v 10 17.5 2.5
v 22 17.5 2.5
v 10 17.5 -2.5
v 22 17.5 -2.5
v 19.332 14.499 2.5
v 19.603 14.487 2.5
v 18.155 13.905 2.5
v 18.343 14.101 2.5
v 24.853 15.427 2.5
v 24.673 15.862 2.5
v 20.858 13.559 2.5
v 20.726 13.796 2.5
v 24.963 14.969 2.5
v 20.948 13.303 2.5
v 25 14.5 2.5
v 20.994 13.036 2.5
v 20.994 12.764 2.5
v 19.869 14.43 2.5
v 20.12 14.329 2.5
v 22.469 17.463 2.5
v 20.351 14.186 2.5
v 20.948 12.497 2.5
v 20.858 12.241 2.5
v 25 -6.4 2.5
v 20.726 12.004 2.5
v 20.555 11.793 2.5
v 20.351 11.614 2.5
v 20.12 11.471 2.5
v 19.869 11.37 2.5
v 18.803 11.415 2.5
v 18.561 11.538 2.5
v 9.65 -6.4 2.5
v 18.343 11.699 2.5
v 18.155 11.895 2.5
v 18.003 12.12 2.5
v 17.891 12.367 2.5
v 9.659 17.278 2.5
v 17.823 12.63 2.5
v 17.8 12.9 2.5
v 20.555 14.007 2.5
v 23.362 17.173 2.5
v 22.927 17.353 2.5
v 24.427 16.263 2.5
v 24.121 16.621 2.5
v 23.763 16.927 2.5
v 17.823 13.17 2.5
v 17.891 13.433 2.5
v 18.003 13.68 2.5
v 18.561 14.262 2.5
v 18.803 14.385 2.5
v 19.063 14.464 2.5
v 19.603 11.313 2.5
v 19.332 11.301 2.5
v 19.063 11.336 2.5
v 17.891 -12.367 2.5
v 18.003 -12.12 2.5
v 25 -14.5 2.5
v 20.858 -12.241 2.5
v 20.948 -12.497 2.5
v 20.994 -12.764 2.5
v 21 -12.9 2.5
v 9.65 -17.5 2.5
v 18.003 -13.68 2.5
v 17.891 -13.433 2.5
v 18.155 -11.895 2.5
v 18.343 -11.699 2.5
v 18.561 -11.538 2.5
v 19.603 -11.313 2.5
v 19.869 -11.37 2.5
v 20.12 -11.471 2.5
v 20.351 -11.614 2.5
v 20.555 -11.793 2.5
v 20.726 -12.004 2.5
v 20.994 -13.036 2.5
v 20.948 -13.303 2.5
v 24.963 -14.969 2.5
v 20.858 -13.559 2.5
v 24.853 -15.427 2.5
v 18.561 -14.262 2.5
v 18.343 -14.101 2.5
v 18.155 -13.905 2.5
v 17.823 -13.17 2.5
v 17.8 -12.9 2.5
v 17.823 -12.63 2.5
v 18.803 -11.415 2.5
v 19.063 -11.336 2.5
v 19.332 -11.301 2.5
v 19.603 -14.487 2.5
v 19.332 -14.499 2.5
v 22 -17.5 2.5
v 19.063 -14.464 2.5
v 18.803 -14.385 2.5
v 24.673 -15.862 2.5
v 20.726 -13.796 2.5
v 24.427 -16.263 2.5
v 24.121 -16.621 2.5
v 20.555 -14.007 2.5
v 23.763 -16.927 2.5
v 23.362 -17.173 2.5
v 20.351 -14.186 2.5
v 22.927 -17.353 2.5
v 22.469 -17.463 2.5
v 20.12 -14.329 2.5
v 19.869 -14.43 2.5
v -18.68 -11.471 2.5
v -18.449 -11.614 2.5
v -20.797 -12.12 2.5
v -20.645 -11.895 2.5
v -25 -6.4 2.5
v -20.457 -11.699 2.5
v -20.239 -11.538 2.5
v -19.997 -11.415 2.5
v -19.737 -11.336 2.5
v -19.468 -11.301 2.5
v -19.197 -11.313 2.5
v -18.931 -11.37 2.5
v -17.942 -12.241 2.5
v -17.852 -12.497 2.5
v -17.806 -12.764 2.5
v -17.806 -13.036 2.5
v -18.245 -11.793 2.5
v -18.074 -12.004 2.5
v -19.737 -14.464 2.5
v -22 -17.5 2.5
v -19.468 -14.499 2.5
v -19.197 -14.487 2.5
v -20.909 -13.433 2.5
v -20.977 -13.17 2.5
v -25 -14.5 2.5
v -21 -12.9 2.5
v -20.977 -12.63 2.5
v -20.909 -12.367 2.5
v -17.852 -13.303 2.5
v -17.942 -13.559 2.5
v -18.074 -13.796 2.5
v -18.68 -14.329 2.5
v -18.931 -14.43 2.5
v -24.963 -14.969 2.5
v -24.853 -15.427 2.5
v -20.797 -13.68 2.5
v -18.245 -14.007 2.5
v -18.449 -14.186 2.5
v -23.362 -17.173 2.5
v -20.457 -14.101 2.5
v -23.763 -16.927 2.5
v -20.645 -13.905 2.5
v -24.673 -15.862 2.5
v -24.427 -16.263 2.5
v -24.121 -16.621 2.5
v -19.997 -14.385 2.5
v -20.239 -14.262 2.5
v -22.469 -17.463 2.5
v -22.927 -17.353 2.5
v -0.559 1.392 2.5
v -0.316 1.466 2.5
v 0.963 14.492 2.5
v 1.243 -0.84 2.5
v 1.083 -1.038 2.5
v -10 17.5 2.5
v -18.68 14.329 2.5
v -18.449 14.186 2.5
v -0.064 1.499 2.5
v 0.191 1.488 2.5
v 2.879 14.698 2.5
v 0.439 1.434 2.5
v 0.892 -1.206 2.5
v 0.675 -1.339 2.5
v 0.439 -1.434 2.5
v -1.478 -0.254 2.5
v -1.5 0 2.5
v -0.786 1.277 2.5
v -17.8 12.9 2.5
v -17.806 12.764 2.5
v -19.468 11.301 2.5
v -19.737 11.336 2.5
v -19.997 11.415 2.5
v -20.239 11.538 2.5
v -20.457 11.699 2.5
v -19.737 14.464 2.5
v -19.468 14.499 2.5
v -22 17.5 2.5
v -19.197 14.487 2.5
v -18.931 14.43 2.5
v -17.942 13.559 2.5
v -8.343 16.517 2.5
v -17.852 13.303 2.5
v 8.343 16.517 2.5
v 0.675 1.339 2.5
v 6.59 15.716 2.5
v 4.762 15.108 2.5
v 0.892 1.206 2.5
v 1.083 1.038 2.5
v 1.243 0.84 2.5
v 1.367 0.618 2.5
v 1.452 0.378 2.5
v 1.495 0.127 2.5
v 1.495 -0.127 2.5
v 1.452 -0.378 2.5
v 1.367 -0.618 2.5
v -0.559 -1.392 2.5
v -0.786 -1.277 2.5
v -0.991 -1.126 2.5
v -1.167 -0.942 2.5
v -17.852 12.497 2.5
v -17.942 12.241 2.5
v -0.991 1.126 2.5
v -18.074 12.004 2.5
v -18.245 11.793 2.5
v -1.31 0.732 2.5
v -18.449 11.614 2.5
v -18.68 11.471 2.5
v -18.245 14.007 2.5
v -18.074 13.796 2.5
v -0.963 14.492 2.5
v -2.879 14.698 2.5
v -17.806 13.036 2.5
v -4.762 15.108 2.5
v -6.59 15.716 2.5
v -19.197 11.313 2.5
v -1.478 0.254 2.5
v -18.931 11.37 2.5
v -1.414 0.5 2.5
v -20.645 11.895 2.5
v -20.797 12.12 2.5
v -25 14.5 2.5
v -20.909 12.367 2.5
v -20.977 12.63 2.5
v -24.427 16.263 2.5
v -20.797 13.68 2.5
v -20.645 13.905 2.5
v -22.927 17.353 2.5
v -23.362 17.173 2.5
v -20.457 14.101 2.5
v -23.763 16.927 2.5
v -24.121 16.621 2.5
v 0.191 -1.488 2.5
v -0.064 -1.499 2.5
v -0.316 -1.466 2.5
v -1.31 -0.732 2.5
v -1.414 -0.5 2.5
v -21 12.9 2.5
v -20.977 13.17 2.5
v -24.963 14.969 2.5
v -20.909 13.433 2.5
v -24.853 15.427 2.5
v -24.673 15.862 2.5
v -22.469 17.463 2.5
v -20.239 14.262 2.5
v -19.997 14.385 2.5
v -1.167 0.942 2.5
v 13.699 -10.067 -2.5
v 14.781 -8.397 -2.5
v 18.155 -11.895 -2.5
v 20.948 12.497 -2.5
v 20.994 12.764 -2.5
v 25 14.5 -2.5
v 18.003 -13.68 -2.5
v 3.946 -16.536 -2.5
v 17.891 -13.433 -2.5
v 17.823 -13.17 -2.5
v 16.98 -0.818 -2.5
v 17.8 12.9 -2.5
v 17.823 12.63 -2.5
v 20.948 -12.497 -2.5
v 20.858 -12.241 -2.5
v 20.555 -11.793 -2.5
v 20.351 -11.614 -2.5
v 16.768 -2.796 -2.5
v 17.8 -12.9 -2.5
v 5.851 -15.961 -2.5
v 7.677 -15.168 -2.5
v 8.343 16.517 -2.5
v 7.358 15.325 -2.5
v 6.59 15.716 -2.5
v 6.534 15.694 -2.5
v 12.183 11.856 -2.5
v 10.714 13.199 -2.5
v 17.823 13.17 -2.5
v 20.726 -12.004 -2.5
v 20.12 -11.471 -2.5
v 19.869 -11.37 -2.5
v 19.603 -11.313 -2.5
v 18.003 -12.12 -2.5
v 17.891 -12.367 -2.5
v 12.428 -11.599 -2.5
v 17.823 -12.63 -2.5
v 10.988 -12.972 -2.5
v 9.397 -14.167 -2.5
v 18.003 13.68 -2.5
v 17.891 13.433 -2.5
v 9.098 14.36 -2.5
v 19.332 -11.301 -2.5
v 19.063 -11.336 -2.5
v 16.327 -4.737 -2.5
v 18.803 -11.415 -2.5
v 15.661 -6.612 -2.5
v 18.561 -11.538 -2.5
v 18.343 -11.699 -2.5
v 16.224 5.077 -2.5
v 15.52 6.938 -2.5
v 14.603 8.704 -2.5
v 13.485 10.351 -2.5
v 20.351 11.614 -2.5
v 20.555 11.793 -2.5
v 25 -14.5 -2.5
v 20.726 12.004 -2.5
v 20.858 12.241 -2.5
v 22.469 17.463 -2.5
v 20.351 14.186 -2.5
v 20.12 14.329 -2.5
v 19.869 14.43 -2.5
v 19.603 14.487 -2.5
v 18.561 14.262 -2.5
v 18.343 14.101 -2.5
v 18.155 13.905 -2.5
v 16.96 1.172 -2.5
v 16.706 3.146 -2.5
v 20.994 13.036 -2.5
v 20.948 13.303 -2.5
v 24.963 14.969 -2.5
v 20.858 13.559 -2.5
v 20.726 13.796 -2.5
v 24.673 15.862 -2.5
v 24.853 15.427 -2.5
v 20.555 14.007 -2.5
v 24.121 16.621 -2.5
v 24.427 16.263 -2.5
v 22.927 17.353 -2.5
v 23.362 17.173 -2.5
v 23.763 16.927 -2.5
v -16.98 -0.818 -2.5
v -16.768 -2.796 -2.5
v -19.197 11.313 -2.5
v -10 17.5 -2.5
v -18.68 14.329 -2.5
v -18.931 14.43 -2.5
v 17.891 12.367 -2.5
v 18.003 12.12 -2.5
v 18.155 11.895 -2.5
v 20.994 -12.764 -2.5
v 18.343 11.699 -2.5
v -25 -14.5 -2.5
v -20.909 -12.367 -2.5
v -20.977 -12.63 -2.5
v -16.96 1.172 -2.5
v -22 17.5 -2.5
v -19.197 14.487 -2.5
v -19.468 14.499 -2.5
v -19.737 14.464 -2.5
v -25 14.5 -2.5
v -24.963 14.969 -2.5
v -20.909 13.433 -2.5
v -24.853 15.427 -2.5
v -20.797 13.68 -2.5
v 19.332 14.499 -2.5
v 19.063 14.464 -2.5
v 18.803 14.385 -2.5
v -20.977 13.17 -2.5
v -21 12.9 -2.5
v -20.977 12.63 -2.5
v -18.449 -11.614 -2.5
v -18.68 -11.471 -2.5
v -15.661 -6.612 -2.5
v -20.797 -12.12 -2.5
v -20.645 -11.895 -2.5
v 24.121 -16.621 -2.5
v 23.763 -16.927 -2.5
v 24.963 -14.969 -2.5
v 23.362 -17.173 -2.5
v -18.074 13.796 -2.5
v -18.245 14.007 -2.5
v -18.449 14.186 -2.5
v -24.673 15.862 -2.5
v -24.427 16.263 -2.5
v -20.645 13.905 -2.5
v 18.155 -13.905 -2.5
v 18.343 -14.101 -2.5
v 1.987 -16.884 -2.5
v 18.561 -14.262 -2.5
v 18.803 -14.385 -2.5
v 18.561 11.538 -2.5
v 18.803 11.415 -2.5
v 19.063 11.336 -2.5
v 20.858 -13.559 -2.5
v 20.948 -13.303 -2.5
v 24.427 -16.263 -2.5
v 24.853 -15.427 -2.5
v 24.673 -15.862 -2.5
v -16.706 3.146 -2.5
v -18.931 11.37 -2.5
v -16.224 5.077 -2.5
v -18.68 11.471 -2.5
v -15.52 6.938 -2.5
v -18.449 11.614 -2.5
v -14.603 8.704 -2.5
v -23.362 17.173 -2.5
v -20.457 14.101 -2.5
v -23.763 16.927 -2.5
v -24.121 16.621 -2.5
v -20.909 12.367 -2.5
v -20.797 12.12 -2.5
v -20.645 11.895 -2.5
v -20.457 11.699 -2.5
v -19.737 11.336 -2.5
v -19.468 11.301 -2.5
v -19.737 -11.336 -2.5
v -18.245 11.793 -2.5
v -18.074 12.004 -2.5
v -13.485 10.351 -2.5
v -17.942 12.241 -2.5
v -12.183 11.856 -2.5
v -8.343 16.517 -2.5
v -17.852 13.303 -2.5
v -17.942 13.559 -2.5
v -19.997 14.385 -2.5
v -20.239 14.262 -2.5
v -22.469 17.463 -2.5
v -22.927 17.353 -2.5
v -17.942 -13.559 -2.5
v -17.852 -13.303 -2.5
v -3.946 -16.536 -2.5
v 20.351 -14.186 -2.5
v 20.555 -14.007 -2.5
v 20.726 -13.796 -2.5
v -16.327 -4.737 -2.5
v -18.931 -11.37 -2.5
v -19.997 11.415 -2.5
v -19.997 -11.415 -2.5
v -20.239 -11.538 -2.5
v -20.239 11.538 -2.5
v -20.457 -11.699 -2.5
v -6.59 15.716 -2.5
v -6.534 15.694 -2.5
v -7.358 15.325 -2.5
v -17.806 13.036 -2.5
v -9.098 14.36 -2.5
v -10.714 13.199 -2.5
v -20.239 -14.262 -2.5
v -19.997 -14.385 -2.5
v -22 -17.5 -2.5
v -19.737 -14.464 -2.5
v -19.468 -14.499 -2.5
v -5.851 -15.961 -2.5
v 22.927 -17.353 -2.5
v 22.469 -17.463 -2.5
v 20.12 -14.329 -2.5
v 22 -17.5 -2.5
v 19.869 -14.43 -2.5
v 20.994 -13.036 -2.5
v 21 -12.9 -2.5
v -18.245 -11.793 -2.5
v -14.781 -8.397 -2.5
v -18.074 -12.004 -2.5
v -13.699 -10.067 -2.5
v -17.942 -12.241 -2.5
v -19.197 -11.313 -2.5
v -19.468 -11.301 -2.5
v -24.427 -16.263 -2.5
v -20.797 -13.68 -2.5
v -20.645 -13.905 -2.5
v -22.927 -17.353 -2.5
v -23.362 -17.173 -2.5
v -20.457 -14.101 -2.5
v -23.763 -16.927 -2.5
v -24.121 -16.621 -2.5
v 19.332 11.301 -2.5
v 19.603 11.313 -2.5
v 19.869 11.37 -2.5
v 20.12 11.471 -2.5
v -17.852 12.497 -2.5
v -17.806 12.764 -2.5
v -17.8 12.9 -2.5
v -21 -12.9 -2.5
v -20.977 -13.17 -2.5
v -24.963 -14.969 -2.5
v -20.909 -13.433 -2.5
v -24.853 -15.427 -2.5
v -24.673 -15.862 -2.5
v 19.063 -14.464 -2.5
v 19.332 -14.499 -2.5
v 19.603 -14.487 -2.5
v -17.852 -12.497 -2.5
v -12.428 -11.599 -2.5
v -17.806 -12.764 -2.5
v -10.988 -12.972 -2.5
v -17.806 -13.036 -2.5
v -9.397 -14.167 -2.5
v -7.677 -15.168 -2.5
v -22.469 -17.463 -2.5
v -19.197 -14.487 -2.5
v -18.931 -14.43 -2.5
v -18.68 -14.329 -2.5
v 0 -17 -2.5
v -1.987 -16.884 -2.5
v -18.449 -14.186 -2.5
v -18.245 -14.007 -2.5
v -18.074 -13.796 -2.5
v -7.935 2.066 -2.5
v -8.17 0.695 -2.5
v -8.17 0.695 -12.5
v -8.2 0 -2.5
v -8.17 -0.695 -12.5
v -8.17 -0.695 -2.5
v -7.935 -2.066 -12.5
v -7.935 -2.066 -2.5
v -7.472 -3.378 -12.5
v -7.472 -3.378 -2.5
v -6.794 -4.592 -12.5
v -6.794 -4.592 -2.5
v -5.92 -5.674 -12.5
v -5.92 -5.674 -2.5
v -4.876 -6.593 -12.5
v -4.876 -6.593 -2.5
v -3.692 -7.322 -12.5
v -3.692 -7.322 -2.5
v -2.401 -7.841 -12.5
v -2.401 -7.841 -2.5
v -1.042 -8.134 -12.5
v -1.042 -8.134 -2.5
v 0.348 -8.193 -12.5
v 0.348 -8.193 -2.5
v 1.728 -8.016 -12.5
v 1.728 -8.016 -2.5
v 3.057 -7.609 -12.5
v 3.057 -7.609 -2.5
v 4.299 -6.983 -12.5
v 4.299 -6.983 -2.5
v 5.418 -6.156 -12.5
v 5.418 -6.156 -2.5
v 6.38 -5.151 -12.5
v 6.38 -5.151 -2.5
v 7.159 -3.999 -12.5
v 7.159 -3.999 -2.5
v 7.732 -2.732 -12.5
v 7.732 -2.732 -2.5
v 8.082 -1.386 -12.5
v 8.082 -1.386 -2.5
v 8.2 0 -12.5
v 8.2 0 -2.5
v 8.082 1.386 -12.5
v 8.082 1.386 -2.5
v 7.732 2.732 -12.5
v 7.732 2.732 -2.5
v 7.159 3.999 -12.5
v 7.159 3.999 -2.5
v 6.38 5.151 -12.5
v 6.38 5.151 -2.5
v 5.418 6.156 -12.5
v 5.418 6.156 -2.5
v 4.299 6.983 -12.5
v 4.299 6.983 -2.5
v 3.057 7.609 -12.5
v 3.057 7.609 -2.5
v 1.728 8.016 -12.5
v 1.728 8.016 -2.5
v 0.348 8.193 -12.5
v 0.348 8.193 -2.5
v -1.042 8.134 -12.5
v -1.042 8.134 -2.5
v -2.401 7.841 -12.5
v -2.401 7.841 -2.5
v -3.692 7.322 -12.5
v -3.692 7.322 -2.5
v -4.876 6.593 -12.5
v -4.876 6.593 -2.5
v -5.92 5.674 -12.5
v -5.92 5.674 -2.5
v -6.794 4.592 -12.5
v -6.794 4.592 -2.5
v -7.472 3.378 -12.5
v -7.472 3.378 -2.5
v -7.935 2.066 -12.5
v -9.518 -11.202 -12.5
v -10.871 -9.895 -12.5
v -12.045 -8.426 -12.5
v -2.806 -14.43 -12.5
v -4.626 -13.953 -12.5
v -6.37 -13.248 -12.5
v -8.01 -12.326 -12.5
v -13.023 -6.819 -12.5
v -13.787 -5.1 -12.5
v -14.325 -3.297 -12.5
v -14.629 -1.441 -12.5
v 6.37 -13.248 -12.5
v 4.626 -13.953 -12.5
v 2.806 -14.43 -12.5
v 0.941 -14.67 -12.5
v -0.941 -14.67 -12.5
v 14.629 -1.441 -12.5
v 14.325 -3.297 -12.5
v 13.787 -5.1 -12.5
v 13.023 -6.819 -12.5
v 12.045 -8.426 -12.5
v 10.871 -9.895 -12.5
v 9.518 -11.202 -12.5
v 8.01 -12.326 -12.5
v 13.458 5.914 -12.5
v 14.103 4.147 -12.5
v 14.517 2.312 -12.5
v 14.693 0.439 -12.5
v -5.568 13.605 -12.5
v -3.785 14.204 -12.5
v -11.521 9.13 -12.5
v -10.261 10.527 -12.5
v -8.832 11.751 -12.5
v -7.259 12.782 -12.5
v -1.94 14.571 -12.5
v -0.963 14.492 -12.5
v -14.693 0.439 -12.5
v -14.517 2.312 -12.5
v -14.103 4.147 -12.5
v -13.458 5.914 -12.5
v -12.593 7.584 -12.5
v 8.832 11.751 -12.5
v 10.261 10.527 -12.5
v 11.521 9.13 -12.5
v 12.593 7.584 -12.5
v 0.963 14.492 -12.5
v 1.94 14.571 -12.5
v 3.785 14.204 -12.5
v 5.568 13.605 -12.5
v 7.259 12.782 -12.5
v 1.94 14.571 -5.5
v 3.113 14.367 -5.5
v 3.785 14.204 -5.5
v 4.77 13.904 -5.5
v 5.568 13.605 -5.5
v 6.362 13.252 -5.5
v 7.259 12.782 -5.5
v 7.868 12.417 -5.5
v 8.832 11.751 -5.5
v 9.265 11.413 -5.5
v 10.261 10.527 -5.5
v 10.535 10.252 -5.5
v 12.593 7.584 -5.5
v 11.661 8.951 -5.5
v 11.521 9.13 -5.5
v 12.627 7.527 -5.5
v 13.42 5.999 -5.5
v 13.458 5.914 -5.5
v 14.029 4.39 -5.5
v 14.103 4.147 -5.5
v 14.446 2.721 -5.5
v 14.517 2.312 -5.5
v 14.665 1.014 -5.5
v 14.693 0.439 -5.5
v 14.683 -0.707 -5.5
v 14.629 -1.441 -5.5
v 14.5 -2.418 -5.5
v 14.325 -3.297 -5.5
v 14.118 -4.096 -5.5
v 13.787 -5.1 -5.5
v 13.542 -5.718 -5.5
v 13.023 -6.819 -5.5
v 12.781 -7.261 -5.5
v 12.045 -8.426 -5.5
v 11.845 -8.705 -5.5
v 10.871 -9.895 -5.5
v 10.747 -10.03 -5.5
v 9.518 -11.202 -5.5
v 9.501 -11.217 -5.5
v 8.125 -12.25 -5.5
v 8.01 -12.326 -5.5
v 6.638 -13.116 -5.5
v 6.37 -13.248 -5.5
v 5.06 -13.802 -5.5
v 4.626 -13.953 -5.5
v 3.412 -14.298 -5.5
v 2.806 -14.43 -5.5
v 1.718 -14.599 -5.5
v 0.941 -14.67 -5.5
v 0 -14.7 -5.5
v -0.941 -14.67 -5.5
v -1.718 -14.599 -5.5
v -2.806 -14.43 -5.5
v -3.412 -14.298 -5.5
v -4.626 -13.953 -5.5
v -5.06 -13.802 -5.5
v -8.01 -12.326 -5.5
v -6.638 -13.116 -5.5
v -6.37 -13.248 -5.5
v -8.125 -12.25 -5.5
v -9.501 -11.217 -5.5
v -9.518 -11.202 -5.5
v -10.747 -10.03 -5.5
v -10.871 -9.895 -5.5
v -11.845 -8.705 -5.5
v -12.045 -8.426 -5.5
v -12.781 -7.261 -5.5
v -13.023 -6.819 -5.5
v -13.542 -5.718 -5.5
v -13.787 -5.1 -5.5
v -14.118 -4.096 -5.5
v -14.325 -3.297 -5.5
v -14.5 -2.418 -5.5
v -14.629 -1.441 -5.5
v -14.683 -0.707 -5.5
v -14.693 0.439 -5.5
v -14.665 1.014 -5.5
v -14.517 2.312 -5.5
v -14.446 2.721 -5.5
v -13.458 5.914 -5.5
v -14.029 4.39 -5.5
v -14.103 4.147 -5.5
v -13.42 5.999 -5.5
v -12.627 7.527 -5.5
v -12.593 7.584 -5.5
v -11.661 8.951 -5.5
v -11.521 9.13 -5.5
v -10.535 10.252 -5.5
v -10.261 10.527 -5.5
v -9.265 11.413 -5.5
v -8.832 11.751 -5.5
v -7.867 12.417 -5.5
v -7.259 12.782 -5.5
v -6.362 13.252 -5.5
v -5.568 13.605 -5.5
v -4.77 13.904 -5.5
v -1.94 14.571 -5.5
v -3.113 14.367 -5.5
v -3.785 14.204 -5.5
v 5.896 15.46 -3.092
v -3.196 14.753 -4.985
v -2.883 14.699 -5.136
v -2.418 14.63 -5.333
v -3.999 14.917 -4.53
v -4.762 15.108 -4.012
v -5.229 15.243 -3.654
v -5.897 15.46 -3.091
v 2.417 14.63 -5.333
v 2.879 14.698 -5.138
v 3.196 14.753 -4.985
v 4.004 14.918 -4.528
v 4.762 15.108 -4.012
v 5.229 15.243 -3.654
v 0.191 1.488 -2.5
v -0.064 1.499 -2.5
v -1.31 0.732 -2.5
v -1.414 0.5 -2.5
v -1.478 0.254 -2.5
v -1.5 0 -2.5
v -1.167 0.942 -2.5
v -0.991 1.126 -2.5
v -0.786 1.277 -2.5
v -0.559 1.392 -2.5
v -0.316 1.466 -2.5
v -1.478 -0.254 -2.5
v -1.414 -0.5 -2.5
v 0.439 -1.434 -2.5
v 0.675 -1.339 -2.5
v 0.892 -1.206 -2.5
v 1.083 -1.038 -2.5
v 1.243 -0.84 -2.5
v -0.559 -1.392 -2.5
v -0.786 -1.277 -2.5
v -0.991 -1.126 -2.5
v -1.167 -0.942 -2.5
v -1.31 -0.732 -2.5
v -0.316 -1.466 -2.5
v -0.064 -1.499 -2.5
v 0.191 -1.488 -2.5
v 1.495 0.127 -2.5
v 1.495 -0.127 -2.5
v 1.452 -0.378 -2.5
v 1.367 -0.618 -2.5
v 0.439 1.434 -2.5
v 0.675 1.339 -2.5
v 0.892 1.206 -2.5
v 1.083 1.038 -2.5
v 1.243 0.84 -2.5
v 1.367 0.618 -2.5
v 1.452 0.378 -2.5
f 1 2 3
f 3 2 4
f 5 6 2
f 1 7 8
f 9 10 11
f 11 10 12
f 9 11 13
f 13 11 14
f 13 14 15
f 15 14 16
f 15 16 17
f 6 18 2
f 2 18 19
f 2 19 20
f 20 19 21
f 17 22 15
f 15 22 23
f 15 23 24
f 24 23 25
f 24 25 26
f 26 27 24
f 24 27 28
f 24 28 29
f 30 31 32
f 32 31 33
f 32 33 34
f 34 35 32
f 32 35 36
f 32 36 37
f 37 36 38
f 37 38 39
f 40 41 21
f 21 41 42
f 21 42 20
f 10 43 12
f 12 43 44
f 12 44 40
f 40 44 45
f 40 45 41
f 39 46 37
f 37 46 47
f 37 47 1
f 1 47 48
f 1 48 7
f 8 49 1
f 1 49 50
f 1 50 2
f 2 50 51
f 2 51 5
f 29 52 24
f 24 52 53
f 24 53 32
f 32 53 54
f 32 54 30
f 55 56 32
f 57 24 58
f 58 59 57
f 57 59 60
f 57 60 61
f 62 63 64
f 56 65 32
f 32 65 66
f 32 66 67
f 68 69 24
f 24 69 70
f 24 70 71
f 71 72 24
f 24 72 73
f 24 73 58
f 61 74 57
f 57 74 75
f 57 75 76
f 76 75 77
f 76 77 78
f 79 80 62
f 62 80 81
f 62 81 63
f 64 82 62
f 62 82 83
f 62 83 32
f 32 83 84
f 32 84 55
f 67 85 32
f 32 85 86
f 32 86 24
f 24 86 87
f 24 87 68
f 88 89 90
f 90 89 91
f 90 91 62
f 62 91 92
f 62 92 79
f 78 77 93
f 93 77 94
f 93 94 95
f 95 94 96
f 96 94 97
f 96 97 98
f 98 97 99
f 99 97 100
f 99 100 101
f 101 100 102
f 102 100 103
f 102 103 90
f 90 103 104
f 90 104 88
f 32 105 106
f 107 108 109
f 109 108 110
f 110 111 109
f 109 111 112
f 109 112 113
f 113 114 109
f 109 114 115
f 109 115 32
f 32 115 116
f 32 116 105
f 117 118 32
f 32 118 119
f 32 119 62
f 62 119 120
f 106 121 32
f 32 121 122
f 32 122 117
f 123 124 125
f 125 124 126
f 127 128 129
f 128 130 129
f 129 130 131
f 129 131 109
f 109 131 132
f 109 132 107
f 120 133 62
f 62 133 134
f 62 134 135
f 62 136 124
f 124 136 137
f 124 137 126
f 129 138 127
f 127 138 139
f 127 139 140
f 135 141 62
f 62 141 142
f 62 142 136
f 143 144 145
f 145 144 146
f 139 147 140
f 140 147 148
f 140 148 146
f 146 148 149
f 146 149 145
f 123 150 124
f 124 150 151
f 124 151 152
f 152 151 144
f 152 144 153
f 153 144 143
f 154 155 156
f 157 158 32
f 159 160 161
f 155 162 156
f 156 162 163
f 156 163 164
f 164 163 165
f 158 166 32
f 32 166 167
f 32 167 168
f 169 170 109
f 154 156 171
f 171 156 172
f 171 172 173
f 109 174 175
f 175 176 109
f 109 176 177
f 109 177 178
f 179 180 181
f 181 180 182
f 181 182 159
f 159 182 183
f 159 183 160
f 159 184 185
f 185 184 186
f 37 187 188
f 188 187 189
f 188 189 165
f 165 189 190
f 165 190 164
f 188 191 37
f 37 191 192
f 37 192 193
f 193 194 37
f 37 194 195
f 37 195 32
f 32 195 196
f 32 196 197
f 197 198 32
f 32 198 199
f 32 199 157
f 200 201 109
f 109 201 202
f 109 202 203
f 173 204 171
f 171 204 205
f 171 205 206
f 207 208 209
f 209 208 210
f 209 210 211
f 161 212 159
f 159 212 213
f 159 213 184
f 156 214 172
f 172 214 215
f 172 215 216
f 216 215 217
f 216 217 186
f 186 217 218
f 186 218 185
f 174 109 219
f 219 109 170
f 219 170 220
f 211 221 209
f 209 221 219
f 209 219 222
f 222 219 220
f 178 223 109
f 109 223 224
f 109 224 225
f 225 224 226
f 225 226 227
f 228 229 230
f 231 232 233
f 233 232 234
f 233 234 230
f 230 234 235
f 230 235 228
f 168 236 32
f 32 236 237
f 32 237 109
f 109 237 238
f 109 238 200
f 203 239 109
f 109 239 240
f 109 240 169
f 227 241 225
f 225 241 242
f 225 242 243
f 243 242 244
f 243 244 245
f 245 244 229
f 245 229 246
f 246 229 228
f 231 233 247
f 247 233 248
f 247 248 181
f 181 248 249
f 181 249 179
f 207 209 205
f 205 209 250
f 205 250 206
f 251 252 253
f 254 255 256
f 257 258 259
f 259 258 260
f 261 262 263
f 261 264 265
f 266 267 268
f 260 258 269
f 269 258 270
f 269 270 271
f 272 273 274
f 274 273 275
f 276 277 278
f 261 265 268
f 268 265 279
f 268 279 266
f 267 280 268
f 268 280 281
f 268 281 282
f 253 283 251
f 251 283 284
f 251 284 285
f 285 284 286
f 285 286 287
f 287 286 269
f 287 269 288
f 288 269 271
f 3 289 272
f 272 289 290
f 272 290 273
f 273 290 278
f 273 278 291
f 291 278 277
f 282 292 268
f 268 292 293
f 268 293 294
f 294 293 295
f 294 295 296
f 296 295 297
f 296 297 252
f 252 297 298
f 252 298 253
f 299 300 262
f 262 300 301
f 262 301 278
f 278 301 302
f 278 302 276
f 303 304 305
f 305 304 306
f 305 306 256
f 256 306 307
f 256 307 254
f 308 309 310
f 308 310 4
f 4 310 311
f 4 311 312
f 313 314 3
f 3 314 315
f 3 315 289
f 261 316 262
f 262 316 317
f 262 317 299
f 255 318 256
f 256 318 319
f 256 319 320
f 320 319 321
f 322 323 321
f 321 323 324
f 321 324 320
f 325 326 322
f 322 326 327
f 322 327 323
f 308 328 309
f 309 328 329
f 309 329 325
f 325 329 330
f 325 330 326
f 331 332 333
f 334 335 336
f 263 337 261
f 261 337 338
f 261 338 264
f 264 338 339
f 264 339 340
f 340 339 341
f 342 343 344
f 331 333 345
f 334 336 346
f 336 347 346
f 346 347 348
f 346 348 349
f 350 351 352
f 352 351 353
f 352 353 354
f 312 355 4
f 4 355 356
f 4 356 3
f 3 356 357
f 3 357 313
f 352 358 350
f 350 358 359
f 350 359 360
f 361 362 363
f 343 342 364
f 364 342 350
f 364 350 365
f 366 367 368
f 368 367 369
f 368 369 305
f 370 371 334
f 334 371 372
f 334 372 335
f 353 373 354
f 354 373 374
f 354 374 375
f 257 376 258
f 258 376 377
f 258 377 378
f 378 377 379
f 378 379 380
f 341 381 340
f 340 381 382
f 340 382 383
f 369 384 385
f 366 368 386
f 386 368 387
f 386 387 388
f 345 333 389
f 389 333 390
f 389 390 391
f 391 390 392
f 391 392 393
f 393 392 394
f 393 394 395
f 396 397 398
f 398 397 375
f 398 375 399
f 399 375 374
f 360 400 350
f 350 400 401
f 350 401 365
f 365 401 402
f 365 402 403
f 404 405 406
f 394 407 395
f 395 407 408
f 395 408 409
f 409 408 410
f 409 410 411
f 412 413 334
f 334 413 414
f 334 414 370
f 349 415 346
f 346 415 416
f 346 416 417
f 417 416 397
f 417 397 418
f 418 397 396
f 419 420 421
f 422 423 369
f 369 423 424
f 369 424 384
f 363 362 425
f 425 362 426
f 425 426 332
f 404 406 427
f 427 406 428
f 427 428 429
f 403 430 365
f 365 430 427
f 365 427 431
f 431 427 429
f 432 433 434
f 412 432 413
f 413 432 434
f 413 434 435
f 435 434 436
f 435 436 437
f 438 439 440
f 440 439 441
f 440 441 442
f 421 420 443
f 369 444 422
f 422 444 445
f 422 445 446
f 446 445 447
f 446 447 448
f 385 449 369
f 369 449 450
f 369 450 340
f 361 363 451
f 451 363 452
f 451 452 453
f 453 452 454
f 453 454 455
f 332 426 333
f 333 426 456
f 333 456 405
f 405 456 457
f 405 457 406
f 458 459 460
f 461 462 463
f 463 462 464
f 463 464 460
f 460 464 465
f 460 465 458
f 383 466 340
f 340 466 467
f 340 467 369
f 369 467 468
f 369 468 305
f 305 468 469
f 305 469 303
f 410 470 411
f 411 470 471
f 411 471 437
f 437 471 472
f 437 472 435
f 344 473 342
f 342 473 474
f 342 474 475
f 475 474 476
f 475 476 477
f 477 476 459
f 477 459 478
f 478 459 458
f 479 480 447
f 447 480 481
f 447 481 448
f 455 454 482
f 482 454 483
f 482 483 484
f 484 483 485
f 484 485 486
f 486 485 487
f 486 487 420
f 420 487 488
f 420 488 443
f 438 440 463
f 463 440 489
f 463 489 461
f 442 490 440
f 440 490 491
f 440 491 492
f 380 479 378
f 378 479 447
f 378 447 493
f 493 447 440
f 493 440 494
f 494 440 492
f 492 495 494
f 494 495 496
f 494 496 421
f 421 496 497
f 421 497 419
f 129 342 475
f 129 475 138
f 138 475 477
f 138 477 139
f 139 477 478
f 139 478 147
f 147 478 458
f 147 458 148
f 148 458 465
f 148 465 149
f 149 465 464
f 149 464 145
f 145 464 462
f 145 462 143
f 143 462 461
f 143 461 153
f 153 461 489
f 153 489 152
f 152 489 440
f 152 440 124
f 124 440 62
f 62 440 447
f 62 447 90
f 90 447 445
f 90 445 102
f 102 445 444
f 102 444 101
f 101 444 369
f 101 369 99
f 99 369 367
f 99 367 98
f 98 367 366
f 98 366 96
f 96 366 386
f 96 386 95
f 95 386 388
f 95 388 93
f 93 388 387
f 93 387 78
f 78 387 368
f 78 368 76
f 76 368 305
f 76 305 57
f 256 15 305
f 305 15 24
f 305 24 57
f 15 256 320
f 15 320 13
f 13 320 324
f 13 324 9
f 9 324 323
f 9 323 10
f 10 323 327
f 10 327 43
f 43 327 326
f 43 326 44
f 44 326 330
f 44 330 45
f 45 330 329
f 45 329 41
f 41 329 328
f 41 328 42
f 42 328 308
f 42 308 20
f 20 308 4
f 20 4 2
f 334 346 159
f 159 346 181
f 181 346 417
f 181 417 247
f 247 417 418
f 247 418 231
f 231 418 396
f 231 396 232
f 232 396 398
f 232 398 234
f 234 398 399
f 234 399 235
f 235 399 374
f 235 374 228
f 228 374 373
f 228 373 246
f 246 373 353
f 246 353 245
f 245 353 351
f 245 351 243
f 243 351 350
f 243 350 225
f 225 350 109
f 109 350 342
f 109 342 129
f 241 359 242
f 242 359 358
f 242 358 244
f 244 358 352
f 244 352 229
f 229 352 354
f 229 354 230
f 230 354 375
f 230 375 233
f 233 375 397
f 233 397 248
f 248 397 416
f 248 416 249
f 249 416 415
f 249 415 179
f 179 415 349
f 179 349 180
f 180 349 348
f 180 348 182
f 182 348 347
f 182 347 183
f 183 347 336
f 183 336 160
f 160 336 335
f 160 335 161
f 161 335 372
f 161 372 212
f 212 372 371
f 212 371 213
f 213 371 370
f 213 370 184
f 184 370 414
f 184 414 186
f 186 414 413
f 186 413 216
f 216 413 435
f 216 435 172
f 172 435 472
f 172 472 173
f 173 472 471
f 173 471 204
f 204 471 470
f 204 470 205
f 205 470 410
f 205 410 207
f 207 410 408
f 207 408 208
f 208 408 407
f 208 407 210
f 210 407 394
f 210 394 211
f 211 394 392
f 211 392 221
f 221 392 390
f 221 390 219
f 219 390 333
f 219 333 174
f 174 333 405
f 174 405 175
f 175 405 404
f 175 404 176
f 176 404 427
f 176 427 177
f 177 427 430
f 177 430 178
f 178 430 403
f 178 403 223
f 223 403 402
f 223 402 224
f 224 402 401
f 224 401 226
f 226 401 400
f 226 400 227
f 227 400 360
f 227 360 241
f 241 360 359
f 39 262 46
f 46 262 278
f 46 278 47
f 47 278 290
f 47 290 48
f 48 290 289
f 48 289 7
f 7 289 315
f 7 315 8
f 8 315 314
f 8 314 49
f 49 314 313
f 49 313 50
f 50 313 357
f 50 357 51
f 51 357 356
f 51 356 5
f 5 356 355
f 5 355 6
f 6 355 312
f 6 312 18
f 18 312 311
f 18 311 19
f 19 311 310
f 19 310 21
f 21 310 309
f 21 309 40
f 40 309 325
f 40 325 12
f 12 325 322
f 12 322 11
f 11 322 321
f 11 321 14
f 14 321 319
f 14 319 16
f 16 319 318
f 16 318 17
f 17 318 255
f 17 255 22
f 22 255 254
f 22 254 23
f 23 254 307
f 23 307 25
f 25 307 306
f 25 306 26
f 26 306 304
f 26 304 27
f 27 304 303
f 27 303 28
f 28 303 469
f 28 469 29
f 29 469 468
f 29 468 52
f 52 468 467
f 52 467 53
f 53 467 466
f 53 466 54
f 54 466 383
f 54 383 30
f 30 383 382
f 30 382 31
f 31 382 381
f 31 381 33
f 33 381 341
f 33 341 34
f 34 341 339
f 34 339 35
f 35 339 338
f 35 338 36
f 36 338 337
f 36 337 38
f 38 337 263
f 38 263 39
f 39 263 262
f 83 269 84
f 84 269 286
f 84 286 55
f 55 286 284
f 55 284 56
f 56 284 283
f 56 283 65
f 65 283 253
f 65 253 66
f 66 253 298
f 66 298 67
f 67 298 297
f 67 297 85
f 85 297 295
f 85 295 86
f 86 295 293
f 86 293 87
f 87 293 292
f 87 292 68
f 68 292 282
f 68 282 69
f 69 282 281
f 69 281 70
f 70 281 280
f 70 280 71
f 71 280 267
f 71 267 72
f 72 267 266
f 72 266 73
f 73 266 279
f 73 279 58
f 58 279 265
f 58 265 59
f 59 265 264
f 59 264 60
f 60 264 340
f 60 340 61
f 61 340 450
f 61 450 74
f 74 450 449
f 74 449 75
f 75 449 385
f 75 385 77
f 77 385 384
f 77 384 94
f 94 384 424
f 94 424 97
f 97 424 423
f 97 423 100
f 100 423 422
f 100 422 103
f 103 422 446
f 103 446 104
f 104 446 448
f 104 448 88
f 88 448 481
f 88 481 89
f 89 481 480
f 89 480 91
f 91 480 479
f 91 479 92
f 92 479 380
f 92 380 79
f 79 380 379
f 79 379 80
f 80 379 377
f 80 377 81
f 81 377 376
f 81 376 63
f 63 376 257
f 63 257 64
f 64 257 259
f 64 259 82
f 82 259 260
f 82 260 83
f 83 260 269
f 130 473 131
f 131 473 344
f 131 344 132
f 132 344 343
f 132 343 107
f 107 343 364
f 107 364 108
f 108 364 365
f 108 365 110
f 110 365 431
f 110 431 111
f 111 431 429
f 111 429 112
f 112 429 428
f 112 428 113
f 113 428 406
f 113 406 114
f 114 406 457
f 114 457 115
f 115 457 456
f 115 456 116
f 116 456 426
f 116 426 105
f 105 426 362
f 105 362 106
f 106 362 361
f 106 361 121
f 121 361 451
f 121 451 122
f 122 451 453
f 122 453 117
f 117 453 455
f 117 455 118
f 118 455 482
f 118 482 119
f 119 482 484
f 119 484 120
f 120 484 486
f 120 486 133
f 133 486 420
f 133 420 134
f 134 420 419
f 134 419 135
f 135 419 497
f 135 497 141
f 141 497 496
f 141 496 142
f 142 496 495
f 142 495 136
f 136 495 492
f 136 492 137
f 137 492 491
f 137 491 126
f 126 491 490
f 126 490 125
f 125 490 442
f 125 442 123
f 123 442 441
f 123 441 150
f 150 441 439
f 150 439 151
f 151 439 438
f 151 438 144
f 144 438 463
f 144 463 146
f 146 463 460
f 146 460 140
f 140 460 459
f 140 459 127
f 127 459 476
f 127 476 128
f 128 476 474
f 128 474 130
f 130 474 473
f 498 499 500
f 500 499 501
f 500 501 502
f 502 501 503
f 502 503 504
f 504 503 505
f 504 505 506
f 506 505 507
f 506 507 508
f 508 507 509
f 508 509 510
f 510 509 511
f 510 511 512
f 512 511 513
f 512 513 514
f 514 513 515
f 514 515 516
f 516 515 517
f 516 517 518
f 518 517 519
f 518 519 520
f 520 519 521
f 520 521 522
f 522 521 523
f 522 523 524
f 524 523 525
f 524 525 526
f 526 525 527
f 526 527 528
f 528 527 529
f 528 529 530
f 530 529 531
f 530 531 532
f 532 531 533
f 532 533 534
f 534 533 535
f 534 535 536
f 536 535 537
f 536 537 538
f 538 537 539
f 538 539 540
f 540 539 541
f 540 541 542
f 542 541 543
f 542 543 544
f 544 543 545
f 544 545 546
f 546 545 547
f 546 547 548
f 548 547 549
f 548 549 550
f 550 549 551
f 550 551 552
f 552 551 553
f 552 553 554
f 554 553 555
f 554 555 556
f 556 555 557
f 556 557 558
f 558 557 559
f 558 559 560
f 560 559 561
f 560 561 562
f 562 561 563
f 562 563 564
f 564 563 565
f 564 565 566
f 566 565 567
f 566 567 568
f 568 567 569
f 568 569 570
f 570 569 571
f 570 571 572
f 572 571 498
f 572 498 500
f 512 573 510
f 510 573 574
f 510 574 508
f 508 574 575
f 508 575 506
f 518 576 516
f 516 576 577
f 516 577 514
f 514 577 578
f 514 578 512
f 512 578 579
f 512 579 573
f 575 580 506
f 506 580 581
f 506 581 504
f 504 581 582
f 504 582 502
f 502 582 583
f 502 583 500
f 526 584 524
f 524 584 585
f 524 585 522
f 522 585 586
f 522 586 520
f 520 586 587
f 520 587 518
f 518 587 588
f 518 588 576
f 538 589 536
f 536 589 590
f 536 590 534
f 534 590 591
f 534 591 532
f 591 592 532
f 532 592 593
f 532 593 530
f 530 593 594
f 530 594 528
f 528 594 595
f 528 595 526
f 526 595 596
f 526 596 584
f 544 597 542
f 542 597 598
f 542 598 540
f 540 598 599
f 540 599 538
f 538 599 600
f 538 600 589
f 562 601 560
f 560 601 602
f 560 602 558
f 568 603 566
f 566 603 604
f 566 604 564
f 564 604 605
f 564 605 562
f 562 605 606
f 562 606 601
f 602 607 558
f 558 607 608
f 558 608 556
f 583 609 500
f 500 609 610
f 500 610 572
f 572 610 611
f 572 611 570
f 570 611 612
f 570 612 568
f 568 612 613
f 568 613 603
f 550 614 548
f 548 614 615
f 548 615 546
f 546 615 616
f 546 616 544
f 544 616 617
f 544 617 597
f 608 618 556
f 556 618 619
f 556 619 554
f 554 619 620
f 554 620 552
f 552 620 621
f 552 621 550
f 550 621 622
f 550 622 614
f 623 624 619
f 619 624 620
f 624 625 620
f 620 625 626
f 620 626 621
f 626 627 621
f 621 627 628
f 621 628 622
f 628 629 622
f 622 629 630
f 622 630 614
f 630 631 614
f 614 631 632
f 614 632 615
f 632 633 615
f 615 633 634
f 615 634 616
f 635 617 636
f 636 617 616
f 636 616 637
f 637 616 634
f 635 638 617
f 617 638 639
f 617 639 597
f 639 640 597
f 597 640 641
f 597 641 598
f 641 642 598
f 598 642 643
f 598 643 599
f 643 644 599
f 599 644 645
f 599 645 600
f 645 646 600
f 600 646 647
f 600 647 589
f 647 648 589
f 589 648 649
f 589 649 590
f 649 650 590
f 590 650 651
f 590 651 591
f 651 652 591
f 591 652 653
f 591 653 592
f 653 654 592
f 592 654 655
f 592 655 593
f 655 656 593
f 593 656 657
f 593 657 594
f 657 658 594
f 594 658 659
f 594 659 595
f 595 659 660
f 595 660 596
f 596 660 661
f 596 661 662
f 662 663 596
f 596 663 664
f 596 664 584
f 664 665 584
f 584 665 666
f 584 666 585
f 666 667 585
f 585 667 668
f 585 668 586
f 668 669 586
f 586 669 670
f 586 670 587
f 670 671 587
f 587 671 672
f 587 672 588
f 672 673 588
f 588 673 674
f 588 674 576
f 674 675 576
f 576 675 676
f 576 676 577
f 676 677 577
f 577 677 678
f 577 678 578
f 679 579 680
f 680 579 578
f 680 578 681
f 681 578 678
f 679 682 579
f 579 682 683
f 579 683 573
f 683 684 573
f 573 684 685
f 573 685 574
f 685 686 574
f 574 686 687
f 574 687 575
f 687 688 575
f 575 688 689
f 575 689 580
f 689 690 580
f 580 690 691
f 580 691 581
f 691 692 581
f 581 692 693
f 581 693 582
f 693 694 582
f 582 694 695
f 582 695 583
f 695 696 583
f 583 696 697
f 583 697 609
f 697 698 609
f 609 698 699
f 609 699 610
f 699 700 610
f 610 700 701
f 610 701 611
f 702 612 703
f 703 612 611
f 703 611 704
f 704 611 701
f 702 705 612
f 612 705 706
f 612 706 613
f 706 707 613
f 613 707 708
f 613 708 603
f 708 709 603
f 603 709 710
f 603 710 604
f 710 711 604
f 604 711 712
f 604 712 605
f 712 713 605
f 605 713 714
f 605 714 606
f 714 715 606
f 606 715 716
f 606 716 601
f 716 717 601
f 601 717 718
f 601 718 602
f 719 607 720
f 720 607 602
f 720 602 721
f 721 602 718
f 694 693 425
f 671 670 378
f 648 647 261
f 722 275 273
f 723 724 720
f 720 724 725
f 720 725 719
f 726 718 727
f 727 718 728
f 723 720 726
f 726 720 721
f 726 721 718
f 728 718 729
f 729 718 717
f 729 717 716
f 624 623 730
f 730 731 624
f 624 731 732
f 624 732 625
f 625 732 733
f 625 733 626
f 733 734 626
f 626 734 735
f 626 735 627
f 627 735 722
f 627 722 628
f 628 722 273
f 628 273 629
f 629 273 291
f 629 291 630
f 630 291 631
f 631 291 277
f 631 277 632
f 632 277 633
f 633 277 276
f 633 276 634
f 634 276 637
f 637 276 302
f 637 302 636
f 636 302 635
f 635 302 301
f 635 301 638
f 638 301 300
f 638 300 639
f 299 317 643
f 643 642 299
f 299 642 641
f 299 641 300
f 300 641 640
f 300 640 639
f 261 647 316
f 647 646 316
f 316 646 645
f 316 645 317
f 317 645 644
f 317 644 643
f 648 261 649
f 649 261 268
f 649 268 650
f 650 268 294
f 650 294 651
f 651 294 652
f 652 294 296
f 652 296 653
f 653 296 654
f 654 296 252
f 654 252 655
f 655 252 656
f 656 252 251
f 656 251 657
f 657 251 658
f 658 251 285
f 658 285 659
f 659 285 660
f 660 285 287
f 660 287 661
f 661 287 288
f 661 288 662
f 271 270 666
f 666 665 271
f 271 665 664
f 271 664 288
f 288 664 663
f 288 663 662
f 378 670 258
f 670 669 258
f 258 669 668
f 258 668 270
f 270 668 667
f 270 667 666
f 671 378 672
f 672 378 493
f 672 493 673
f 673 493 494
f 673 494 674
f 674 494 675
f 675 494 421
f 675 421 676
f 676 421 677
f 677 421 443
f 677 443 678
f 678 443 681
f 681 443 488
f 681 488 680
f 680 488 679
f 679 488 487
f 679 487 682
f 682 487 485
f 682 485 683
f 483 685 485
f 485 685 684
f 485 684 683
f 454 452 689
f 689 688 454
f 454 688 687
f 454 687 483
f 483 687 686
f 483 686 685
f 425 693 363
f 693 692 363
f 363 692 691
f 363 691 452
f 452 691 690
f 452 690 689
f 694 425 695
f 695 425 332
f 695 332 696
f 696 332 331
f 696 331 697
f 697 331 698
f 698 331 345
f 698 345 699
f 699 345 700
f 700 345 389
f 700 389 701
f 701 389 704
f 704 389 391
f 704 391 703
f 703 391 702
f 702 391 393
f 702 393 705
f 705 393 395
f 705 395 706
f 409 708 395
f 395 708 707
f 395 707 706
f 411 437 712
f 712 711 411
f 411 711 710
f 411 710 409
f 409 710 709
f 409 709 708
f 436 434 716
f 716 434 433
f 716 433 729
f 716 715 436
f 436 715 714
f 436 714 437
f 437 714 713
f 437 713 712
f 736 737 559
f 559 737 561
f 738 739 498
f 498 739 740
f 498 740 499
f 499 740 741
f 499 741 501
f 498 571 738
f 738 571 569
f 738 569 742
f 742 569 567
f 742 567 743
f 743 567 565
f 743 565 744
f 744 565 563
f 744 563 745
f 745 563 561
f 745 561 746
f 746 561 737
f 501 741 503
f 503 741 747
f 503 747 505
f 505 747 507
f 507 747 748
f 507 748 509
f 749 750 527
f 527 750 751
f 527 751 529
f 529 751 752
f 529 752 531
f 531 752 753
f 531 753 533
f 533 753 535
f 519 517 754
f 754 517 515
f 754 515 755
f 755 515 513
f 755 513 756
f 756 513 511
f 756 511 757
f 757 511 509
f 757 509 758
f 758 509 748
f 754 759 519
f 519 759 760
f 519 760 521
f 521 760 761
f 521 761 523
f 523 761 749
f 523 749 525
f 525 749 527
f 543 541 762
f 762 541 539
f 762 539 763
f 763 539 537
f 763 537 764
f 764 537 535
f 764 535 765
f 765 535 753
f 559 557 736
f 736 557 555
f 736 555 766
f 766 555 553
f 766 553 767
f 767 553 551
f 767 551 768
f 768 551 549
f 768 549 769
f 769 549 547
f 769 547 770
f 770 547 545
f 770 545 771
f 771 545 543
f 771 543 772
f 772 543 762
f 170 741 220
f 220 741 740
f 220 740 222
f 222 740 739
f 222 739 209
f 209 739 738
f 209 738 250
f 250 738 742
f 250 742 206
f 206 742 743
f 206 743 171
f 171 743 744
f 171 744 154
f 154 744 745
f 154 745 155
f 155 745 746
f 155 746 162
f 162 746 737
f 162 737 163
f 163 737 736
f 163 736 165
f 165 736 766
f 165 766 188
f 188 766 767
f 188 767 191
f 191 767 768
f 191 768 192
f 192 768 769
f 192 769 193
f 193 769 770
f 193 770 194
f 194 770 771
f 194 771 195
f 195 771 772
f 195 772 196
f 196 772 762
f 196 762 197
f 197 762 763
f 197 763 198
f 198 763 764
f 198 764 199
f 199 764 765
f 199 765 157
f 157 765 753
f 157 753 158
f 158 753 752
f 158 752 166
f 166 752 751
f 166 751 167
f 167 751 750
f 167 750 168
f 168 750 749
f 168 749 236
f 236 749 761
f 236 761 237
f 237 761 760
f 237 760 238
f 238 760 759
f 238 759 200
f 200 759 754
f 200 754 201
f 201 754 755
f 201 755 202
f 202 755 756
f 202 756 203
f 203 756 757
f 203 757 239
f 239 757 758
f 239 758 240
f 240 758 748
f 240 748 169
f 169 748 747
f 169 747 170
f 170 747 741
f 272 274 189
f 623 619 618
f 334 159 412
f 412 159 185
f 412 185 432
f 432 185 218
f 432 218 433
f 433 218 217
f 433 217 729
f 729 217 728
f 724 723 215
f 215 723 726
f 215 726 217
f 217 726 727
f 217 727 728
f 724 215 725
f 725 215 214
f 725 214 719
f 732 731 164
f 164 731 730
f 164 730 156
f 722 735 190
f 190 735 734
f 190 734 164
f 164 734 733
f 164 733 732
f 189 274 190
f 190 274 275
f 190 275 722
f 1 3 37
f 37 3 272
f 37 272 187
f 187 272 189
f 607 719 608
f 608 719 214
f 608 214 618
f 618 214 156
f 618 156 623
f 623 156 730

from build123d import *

# Parameters (mm, degrees)
CROQUIS1_R              = 1.6
SALIENTE_EXTRUIR1_DEPTH = 2.5
CROQUIS3_R              = 1.5
CORTAR_EXTRUIR1_DEPTH   = 5
CORTAR_EXTRUIR2_DEPTH   = 25


with BuildPart() as part:
    # Croquis1 → Saliente-Extruir1 (new, symmetric)
    with BuildSketch(Plane.XY):
        with BuildLine():
            Line((-22, -17.5), (22, -17.5))
            ThreePointArc((22, -17.5), (24.121320344, -16.621320344), (25, -14.5))
            Line((25, -14.5), (25, 14.5))
            ThreePointArc((25, 14.5), (24.121320344, 16.621320344), (22, 17.5))
            Line((22, 17.5), (-22, 17.5))
            ThreePointArc((-22, 17.5), (-24.121320344, 16.621320344), (-25, 14.5))
            Line((-25, 14.5), (-25, -14.5))
            ThreePointArc((-25, -14.5), (-24.121320344, -16.621320344), (-22, -17.5))
        make_face()
        with Locations((-19.4, 12.9)):
            Circle(CROQUIS1_R, mode=Mode.SUBTRACT)
        with Locations(Location((19.4, 12.9, 0), (0, 0, 180))):
            Circle(CROQUIS1_R, mode=Mode.SUBTRACT)
        with Locations((19.4, -12.9)):
            Circle(CROQUIS1_R, mode=Mode.SUBTRACT)
        with Locations(Location((-19.4, -12.9, 0), (0, 0, 180))):
            Circle(CROQUIS1_R, mode=Mode.SUBTRACT)
    extrude(amount=SALIENTE_EXTRUIR1_DEPTH, both=True)

    # Croquis2 → Revolución1 (revolve)
    with BuildSketch(Plane(origin=(0, 0, 0), x_dir=(1, 0, 0), z_dir=(0, 1, 0))):
        Polygon((8.2, 2.5), (8.2, 12.5), (14.7, 12.5), (14.7, 5.5), (17, 2.5), align=None)
    revolve(axis=Axis((0, 0, 7.417580073), (0, 0, -1)))

    # Croquis3 → Cortar-Extruir1 (cut)
    with BuildSketch(Plane(origin=(0, 0, -2.5), x_dir=(-1, 0, 0), z_dir=(0, 0, -1))):
        Circle(CROQUIS3_R)
    extrude(amount=-CORTAR_EXTRUIR1_DEPTH, mode=Mode.SUBTRACT)

    # Croquis4 → Cortar-Extruir2 (cut)
    with BuildSketch(Plane.XY.offset(2.5)):
        with BuildLine():
            Line((-10, 17.5), (10, 17.5))
            ThreePointArc((10, 17.5), (0, 14.466629547), (-10, 17.5))
        make_face()
    extrude(amount=-CORTAR_EXTRUIR2_DEPTH, mode=Mode.SUBTRACT)


solid = part.part
